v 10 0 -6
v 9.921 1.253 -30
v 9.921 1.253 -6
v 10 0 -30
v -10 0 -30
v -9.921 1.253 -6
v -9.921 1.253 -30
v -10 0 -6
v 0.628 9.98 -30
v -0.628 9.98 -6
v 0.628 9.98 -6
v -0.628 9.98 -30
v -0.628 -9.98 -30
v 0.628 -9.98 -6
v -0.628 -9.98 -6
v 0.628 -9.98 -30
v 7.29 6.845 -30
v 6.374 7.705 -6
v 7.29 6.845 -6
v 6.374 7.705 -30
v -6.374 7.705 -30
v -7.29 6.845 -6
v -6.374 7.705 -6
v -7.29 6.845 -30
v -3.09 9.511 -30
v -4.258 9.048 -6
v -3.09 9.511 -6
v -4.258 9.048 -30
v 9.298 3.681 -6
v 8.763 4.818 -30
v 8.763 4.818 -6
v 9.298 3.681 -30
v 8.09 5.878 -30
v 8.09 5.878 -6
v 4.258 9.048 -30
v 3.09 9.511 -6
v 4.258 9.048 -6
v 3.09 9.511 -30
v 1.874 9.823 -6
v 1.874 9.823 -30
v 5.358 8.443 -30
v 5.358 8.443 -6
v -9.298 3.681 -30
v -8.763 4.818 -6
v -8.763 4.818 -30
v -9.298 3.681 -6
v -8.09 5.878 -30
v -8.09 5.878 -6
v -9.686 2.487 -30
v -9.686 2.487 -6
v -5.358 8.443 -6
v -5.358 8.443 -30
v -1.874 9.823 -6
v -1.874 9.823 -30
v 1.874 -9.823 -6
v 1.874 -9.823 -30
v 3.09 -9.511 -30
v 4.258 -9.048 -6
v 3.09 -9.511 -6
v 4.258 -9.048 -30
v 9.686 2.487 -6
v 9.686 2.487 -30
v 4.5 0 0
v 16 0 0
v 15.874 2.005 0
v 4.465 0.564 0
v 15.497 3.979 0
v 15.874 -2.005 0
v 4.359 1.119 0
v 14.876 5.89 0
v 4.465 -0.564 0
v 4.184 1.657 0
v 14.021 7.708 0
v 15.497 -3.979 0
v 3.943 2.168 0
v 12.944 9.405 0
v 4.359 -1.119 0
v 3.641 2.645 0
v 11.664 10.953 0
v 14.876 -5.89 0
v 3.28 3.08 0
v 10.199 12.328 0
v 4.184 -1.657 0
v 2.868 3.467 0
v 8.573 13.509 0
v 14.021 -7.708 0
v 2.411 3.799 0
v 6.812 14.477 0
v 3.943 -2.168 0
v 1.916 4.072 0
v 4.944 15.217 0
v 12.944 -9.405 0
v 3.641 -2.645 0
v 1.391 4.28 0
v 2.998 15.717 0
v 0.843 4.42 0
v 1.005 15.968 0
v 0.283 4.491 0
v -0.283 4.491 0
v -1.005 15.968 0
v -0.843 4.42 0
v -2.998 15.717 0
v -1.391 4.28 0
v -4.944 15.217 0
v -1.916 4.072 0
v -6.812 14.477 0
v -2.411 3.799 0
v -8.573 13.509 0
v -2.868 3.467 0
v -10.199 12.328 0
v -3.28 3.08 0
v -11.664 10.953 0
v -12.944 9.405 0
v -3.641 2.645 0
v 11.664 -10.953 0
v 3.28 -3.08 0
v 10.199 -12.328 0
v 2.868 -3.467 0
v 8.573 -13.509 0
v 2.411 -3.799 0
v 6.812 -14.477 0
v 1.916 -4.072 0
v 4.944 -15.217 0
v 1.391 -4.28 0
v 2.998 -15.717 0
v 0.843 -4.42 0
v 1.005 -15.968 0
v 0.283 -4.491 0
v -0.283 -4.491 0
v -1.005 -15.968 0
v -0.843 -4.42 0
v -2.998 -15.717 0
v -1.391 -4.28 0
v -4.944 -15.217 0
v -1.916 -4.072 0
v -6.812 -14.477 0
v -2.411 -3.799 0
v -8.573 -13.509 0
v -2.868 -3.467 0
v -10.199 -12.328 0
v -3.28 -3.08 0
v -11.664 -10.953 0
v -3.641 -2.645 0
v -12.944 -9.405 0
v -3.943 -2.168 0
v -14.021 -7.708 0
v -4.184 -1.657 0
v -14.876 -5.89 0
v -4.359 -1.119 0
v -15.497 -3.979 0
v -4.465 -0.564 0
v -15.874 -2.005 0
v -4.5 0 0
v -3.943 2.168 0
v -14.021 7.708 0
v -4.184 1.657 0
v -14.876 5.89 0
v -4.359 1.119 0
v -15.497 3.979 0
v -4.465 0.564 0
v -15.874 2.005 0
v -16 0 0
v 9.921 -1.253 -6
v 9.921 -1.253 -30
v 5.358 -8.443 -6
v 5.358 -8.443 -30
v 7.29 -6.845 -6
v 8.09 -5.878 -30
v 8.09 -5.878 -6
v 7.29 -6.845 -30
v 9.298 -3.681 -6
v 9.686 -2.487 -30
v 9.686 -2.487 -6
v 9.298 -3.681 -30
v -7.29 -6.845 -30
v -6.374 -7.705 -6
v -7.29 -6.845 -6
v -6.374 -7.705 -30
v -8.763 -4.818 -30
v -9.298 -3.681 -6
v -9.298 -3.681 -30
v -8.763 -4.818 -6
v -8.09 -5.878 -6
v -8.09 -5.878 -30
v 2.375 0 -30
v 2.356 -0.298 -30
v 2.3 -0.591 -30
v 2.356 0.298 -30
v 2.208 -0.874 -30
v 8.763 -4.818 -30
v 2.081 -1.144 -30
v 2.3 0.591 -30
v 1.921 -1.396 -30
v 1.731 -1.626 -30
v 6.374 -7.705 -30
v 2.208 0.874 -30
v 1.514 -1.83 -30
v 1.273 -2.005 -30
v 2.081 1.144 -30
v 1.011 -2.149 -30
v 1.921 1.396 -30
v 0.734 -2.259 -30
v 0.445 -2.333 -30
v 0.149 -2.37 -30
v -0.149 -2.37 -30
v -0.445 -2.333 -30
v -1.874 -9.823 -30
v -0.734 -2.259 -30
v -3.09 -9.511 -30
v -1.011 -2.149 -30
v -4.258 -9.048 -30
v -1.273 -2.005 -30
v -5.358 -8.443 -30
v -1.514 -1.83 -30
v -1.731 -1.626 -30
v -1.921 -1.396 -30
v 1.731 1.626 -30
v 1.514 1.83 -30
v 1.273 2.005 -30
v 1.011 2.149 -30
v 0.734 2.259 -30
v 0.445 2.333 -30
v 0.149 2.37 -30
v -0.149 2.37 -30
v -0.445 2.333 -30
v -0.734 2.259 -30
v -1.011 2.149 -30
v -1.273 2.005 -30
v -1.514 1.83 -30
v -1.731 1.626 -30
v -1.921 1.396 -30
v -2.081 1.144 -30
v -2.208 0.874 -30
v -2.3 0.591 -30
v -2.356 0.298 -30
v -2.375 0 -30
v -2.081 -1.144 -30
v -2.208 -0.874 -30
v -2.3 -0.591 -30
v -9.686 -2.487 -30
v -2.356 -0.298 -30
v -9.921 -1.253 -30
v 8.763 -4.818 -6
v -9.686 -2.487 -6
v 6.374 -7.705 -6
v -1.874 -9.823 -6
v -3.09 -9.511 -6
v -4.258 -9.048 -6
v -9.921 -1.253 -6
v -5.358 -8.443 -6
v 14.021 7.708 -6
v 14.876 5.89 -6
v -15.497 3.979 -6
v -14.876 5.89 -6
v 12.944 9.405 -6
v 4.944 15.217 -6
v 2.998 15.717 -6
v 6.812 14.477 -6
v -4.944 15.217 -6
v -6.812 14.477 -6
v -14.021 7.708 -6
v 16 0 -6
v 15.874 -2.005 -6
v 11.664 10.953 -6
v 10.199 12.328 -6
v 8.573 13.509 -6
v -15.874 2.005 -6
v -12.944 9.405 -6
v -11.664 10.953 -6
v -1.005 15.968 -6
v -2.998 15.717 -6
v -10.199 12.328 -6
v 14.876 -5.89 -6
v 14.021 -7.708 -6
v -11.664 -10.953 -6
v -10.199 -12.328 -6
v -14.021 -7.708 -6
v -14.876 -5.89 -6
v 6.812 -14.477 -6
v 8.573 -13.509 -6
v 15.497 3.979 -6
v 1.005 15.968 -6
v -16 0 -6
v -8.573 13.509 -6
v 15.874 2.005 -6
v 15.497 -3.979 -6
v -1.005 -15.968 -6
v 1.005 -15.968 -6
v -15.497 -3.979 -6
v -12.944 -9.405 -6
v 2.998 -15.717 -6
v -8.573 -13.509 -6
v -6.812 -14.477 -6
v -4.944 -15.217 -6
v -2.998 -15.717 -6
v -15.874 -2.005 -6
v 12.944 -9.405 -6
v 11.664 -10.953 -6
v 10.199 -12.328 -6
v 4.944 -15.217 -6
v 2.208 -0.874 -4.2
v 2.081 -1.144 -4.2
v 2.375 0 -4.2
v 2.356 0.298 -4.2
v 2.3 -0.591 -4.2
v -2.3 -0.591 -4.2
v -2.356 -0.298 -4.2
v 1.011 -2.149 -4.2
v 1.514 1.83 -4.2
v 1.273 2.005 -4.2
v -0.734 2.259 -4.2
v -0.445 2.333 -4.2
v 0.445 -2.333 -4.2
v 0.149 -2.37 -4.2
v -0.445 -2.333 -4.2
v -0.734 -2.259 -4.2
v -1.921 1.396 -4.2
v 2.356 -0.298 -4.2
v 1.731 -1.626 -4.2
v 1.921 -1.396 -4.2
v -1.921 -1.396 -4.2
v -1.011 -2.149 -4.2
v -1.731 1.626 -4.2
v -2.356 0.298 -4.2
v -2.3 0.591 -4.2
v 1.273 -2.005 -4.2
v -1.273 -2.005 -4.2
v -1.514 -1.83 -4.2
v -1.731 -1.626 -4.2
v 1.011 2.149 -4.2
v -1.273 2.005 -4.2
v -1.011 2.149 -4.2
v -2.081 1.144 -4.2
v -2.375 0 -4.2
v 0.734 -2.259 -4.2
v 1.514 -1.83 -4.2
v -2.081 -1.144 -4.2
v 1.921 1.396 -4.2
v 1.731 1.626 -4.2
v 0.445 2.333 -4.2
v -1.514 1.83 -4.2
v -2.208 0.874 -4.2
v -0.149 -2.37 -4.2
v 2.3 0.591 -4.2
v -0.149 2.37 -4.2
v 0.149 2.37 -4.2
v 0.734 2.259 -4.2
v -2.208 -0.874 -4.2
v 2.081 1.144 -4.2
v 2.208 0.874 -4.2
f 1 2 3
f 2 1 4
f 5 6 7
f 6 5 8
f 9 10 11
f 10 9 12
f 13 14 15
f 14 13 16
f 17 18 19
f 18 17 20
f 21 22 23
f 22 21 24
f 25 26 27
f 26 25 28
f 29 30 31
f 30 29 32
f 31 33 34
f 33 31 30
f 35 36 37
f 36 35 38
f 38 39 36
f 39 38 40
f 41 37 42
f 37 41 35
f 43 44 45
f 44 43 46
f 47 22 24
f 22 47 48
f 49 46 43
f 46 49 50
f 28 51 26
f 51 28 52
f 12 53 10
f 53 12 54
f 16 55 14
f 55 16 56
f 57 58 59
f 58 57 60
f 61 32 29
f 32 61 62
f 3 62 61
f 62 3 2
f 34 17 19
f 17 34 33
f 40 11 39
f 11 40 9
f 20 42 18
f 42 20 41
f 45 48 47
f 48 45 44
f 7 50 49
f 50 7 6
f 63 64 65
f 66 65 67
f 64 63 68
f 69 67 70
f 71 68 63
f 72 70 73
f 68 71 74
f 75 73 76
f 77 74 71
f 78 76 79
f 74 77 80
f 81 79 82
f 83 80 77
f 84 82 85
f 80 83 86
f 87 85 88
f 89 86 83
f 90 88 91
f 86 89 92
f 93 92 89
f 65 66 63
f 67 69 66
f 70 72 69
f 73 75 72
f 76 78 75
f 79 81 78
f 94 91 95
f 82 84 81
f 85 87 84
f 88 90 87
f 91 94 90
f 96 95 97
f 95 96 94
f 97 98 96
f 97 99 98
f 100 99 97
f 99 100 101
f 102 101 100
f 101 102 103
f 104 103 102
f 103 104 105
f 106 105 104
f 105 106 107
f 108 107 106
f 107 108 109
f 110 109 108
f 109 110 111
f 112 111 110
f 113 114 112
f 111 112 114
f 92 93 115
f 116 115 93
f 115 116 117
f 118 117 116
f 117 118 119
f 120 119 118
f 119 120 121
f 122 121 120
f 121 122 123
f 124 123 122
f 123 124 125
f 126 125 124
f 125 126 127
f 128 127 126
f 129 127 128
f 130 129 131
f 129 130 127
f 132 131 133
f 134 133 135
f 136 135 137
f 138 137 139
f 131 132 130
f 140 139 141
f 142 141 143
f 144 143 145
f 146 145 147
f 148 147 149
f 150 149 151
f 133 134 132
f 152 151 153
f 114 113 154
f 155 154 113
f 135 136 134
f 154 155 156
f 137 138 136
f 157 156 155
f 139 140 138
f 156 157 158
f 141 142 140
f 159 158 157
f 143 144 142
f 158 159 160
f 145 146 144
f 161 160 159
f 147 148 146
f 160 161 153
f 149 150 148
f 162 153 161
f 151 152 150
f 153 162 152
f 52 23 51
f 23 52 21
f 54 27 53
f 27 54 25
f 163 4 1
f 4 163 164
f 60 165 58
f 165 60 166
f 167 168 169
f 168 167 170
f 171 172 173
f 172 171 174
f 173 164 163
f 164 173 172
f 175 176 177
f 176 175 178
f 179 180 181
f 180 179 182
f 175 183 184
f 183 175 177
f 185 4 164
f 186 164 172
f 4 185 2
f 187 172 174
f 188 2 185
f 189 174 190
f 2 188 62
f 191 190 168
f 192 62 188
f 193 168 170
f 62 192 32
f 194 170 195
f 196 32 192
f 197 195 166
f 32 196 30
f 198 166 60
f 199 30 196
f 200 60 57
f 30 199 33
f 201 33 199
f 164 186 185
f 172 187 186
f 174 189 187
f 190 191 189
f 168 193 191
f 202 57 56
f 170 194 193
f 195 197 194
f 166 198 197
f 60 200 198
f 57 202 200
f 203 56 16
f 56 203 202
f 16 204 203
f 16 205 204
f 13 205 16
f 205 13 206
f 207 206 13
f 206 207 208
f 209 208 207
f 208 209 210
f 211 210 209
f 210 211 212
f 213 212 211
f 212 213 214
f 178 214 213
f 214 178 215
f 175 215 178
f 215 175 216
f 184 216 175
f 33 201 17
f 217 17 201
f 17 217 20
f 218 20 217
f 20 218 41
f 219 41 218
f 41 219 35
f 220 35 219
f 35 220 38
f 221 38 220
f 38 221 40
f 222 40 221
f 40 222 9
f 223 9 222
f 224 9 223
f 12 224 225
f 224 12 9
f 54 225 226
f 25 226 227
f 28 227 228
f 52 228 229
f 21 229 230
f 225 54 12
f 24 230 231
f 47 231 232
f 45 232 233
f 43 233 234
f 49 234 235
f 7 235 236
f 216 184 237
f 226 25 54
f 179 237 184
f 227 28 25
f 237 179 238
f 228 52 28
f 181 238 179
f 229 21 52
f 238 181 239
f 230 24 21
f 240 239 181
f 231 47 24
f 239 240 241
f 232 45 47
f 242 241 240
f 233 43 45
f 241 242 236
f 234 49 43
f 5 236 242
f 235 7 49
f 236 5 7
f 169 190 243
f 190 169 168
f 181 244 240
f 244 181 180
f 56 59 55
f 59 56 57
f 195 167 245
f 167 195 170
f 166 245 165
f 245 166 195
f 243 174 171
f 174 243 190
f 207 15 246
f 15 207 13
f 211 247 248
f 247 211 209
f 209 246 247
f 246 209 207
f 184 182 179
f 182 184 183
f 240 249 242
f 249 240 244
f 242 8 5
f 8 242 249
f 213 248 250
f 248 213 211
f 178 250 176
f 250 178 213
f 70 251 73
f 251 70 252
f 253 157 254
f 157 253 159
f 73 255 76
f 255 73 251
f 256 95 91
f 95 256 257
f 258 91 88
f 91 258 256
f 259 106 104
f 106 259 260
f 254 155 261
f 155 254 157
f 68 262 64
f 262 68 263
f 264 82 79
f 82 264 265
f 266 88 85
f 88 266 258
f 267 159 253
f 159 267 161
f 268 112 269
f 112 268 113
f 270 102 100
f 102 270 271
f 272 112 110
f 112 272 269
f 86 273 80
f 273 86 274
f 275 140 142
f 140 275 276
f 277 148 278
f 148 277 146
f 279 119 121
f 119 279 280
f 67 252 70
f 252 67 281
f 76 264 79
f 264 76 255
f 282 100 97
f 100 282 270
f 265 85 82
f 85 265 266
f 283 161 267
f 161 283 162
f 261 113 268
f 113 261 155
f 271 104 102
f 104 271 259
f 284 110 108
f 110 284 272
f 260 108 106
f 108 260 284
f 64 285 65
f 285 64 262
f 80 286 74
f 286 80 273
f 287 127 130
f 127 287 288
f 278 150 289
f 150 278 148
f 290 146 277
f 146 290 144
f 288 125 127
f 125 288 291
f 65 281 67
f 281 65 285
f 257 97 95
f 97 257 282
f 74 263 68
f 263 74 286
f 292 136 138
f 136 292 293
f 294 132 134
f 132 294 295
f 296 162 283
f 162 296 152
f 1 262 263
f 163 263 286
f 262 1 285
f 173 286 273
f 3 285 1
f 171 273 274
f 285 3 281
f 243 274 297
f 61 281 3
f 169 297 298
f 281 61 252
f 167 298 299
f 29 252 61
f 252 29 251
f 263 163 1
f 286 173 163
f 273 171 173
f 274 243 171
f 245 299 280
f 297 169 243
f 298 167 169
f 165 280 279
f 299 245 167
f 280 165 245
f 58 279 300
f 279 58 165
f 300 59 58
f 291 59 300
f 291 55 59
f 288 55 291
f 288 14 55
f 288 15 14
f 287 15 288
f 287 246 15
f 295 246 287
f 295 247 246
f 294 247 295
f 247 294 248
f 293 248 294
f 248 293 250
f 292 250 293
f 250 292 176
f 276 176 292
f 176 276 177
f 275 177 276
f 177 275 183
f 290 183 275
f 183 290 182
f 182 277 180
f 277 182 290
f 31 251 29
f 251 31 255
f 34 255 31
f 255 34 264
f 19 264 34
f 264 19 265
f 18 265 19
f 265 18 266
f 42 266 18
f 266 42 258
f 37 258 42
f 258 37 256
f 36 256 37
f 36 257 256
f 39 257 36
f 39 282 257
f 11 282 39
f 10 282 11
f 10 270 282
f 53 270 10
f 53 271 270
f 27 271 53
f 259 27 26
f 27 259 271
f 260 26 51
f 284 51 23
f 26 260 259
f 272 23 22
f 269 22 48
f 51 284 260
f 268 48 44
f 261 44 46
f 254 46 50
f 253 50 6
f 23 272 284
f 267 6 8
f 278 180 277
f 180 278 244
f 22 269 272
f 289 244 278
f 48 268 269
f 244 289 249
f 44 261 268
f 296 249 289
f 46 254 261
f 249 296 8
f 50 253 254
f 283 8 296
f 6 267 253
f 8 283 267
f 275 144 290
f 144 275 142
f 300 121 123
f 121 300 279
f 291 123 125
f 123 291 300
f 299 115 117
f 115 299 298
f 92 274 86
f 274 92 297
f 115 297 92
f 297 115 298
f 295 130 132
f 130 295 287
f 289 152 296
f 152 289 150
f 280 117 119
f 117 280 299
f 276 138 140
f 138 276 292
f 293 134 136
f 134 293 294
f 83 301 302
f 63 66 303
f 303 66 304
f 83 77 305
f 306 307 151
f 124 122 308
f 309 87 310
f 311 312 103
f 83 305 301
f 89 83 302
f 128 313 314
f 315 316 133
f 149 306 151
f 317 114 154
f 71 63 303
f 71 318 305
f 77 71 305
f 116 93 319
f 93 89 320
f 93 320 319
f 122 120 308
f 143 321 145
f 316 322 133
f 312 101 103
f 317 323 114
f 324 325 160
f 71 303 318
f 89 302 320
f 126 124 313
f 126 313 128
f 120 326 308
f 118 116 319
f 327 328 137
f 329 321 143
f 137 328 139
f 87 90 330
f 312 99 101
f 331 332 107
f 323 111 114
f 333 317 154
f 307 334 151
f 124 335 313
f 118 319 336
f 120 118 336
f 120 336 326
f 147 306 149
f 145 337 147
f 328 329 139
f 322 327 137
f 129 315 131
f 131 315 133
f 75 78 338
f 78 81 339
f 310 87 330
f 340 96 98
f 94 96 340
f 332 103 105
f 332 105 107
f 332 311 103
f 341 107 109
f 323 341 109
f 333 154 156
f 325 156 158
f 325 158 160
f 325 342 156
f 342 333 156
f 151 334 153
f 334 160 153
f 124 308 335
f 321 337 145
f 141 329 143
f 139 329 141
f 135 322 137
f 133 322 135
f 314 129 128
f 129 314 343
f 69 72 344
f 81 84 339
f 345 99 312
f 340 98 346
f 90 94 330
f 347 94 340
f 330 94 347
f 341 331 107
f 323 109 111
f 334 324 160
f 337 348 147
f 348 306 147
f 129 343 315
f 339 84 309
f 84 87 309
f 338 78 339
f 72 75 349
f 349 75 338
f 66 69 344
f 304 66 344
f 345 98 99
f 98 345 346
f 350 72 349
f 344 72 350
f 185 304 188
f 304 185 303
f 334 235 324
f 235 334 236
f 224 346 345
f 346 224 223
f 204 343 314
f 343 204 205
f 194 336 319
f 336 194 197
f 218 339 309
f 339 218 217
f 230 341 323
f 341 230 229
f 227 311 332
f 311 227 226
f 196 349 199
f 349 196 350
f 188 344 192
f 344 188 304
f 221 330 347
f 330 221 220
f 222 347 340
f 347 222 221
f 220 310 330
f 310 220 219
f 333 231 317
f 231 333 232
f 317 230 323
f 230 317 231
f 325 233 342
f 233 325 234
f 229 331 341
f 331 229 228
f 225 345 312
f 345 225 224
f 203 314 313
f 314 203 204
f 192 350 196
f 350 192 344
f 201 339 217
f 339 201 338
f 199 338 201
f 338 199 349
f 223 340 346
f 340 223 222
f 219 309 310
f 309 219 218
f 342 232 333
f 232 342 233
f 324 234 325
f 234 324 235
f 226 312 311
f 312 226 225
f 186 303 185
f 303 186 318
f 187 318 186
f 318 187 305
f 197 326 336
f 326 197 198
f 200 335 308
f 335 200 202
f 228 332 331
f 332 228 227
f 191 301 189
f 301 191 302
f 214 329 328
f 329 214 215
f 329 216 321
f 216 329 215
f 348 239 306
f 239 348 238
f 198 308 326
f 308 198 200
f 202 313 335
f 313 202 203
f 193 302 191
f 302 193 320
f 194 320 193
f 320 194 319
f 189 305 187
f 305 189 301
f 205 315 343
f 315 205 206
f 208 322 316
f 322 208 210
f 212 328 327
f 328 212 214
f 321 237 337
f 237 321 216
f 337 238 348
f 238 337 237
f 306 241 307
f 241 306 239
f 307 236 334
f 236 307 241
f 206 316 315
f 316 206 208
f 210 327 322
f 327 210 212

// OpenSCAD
$fn = 50;


difference() {
	union() {
		translate(v = [0, 0, -30.0000000000]) {
			cylinder(h = 30, r = 10.0000000000);
		}
		translate(v = [0, 0, -6.0000000000]) {
			cylinder(h = 6, r = 16.0000000000);
		}
	}
	union() {
		translate(v = [0, 0, 0]) {
			rotate(a = [0, 0, 0]) {
				difference() {
					union() {
						#translate(v = [0, 0, -30.0000000000]) {
							cylinder(h = 30, r = 2.2500000000);
						}
						#translate(v = [0, 0, -4.2000000000]) {
							cylinder(h = 4.2000000000, r1 = 2.3750000000, r2 = 4.5000000000);
						}
						#translate(v = [0, 0, -30.0000000000]) {
							cylinder(h = 30, r = 2.3750000000);
						}
						#translate(v = [0, 0, -30.0000000000]) {
							cylinder(h = 30, r = 2.2500000000);
						}
					}
					union();
				}
			}
		}
	}
}
